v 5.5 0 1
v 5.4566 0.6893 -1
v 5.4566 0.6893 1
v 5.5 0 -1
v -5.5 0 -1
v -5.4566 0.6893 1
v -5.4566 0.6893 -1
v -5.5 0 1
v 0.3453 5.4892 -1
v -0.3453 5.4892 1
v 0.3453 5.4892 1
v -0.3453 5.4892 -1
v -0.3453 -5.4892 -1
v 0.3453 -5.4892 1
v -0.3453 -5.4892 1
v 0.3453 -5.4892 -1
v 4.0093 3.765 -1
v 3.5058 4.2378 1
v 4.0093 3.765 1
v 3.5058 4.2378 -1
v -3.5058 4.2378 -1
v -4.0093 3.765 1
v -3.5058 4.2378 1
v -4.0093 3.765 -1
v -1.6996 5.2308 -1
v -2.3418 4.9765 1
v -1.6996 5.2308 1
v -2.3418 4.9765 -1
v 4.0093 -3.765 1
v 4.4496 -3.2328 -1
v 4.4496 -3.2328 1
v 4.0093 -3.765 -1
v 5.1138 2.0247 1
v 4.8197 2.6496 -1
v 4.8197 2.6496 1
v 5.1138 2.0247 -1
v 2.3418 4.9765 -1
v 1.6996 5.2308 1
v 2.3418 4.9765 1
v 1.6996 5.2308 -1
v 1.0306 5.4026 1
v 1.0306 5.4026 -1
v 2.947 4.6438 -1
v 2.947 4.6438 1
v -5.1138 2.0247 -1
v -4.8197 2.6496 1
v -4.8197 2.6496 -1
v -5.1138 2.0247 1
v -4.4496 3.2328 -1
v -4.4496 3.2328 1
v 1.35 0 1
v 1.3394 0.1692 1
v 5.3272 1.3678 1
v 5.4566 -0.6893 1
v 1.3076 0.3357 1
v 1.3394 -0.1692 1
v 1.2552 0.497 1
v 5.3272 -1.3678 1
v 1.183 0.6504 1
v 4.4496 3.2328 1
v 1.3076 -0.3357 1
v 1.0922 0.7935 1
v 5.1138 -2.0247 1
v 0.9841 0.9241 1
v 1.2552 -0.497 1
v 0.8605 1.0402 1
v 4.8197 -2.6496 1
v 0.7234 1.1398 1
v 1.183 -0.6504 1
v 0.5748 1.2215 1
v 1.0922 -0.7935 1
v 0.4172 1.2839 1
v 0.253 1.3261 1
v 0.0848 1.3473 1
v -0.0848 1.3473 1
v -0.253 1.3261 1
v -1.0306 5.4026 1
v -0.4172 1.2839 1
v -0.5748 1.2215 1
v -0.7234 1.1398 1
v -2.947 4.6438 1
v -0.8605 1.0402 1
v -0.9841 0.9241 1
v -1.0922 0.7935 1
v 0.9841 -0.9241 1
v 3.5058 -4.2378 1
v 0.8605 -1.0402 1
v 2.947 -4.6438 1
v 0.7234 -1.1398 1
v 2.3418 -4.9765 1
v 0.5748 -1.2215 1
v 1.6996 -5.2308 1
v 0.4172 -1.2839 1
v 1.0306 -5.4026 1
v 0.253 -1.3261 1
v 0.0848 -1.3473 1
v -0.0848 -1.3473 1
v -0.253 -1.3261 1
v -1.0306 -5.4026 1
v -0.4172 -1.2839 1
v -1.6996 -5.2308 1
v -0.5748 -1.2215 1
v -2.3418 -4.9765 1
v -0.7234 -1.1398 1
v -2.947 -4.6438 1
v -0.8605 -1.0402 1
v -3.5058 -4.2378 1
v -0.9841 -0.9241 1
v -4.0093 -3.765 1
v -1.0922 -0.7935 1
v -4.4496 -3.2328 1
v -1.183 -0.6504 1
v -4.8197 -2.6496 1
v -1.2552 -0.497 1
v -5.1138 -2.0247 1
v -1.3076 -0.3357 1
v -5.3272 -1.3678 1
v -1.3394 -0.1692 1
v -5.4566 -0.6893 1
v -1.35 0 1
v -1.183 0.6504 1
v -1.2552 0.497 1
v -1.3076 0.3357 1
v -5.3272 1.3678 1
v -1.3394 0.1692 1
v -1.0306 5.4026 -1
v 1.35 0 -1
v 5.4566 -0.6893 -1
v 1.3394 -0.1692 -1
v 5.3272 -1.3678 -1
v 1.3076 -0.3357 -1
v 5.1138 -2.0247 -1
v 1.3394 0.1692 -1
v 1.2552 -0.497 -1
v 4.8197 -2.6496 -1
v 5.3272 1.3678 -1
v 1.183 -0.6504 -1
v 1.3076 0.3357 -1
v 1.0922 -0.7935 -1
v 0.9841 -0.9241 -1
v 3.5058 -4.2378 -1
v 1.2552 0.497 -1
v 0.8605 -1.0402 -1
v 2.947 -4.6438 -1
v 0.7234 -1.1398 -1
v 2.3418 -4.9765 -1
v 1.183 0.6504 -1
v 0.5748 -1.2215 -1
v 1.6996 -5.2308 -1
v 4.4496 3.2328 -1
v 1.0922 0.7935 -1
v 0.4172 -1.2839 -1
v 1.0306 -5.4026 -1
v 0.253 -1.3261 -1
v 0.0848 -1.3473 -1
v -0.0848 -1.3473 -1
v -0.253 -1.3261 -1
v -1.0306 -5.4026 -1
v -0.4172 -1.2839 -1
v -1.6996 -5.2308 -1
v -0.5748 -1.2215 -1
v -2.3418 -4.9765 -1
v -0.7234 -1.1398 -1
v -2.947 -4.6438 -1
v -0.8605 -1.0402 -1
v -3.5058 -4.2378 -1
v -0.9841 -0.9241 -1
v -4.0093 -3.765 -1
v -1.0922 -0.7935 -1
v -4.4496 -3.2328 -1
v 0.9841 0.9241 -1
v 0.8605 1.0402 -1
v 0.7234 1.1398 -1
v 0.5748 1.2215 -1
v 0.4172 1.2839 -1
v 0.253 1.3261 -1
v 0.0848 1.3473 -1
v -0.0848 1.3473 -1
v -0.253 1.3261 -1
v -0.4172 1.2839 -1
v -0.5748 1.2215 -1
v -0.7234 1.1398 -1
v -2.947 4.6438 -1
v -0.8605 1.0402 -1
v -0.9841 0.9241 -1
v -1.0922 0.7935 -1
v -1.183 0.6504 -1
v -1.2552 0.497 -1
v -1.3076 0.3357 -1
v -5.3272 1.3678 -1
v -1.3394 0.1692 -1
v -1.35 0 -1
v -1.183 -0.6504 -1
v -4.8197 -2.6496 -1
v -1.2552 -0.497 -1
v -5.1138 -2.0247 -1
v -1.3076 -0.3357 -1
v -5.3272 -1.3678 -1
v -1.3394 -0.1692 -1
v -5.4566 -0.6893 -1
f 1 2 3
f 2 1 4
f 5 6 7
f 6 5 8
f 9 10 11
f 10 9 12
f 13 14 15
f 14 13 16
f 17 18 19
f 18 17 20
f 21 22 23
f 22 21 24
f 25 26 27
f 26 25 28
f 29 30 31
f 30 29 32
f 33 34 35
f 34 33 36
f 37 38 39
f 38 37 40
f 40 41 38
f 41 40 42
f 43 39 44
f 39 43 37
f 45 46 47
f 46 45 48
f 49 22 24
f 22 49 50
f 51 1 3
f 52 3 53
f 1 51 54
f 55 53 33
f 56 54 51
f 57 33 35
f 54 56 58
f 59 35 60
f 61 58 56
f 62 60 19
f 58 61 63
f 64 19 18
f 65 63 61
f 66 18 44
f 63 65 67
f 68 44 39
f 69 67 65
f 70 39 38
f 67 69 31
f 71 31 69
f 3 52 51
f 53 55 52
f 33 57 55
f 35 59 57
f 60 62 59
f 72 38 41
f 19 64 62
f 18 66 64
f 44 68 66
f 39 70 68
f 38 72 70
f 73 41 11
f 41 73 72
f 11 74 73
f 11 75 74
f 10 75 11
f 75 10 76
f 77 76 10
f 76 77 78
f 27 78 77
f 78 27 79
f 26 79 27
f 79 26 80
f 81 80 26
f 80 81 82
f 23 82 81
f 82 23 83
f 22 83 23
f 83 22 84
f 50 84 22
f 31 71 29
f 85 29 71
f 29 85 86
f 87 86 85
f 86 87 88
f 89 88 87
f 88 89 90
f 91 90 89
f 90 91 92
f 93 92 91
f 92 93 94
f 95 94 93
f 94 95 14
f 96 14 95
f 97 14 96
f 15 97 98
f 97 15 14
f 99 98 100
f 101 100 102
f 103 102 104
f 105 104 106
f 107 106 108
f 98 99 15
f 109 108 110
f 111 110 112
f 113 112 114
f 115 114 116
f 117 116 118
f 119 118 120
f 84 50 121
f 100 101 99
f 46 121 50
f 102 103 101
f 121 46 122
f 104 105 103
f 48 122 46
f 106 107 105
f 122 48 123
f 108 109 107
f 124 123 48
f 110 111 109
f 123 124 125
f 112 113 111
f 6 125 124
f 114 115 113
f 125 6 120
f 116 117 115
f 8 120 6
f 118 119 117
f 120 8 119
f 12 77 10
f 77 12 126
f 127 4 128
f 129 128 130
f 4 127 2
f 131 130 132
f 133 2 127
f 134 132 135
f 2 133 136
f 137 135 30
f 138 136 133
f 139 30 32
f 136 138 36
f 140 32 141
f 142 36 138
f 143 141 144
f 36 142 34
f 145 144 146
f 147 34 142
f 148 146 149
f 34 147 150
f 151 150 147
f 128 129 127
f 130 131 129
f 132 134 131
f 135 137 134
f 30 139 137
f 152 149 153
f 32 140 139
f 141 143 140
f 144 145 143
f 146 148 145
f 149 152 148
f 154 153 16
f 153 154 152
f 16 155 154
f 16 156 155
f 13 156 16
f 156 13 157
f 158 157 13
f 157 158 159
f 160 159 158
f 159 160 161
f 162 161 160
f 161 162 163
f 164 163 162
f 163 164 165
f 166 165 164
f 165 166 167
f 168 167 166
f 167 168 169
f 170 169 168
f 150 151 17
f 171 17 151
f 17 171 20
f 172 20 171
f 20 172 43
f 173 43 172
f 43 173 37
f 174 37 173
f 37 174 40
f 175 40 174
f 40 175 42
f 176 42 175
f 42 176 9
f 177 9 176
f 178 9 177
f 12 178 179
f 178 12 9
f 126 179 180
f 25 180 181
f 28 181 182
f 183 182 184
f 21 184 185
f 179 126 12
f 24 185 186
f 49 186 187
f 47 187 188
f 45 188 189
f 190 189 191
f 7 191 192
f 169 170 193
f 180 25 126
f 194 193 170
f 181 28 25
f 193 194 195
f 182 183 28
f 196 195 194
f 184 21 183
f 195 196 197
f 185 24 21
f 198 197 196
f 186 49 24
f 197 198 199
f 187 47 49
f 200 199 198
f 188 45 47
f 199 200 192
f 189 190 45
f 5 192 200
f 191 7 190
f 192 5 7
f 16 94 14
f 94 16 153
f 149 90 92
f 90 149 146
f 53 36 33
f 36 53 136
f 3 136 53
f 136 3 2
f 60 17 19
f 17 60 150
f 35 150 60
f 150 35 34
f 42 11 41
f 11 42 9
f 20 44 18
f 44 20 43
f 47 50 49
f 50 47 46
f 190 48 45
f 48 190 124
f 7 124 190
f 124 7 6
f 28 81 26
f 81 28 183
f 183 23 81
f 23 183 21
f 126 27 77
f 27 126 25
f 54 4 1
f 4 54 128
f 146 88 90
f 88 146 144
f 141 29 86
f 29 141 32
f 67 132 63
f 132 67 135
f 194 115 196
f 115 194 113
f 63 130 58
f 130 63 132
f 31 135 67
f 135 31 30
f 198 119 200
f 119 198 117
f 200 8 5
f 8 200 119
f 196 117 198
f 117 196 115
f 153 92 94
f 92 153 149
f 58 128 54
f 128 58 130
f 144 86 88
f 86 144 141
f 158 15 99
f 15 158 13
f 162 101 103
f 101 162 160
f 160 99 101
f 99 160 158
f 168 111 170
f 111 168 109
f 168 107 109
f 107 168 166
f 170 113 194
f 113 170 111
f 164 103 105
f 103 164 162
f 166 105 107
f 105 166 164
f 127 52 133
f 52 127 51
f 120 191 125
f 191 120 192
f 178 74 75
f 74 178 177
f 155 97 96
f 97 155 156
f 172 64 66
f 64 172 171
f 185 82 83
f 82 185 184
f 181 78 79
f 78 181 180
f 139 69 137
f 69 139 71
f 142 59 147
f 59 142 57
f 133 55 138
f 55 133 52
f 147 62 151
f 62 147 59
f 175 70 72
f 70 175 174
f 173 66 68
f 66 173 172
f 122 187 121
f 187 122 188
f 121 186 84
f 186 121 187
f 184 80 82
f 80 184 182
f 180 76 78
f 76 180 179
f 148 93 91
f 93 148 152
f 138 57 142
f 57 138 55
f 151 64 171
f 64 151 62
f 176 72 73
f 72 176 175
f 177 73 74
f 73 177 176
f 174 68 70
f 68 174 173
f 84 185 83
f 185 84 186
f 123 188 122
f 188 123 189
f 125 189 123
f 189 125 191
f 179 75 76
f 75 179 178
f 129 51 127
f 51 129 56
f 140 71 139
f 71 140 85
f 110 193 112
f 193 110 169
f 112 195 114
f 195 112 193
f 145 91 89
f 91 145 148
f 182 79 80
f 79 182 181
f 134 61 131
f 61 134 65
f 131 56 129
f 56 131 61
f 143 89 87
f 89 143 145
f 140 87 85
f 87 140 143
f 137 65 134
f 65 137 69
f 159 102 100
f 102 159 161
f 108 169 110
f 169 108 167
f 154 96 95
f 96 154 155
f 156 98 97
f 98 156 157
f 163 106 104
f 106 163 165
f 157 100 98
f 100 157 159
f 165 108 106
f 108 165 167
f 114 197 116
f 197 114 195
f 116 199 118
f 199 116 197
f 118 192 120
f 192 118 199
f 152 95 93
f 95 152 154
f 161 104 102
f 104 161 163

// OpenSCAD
$fn = 50;


difference() {
	union() {
		translate(v = [0, 0, -1.0000000000]) {
			cylinder(h = 2, r = 5.5000000000);
		}
	}
	union() {
		translate(v = [0, 0, -100.0000000000]) {
			cylinder(h = 200, r = 1.3500000000);
		}
	}
}
